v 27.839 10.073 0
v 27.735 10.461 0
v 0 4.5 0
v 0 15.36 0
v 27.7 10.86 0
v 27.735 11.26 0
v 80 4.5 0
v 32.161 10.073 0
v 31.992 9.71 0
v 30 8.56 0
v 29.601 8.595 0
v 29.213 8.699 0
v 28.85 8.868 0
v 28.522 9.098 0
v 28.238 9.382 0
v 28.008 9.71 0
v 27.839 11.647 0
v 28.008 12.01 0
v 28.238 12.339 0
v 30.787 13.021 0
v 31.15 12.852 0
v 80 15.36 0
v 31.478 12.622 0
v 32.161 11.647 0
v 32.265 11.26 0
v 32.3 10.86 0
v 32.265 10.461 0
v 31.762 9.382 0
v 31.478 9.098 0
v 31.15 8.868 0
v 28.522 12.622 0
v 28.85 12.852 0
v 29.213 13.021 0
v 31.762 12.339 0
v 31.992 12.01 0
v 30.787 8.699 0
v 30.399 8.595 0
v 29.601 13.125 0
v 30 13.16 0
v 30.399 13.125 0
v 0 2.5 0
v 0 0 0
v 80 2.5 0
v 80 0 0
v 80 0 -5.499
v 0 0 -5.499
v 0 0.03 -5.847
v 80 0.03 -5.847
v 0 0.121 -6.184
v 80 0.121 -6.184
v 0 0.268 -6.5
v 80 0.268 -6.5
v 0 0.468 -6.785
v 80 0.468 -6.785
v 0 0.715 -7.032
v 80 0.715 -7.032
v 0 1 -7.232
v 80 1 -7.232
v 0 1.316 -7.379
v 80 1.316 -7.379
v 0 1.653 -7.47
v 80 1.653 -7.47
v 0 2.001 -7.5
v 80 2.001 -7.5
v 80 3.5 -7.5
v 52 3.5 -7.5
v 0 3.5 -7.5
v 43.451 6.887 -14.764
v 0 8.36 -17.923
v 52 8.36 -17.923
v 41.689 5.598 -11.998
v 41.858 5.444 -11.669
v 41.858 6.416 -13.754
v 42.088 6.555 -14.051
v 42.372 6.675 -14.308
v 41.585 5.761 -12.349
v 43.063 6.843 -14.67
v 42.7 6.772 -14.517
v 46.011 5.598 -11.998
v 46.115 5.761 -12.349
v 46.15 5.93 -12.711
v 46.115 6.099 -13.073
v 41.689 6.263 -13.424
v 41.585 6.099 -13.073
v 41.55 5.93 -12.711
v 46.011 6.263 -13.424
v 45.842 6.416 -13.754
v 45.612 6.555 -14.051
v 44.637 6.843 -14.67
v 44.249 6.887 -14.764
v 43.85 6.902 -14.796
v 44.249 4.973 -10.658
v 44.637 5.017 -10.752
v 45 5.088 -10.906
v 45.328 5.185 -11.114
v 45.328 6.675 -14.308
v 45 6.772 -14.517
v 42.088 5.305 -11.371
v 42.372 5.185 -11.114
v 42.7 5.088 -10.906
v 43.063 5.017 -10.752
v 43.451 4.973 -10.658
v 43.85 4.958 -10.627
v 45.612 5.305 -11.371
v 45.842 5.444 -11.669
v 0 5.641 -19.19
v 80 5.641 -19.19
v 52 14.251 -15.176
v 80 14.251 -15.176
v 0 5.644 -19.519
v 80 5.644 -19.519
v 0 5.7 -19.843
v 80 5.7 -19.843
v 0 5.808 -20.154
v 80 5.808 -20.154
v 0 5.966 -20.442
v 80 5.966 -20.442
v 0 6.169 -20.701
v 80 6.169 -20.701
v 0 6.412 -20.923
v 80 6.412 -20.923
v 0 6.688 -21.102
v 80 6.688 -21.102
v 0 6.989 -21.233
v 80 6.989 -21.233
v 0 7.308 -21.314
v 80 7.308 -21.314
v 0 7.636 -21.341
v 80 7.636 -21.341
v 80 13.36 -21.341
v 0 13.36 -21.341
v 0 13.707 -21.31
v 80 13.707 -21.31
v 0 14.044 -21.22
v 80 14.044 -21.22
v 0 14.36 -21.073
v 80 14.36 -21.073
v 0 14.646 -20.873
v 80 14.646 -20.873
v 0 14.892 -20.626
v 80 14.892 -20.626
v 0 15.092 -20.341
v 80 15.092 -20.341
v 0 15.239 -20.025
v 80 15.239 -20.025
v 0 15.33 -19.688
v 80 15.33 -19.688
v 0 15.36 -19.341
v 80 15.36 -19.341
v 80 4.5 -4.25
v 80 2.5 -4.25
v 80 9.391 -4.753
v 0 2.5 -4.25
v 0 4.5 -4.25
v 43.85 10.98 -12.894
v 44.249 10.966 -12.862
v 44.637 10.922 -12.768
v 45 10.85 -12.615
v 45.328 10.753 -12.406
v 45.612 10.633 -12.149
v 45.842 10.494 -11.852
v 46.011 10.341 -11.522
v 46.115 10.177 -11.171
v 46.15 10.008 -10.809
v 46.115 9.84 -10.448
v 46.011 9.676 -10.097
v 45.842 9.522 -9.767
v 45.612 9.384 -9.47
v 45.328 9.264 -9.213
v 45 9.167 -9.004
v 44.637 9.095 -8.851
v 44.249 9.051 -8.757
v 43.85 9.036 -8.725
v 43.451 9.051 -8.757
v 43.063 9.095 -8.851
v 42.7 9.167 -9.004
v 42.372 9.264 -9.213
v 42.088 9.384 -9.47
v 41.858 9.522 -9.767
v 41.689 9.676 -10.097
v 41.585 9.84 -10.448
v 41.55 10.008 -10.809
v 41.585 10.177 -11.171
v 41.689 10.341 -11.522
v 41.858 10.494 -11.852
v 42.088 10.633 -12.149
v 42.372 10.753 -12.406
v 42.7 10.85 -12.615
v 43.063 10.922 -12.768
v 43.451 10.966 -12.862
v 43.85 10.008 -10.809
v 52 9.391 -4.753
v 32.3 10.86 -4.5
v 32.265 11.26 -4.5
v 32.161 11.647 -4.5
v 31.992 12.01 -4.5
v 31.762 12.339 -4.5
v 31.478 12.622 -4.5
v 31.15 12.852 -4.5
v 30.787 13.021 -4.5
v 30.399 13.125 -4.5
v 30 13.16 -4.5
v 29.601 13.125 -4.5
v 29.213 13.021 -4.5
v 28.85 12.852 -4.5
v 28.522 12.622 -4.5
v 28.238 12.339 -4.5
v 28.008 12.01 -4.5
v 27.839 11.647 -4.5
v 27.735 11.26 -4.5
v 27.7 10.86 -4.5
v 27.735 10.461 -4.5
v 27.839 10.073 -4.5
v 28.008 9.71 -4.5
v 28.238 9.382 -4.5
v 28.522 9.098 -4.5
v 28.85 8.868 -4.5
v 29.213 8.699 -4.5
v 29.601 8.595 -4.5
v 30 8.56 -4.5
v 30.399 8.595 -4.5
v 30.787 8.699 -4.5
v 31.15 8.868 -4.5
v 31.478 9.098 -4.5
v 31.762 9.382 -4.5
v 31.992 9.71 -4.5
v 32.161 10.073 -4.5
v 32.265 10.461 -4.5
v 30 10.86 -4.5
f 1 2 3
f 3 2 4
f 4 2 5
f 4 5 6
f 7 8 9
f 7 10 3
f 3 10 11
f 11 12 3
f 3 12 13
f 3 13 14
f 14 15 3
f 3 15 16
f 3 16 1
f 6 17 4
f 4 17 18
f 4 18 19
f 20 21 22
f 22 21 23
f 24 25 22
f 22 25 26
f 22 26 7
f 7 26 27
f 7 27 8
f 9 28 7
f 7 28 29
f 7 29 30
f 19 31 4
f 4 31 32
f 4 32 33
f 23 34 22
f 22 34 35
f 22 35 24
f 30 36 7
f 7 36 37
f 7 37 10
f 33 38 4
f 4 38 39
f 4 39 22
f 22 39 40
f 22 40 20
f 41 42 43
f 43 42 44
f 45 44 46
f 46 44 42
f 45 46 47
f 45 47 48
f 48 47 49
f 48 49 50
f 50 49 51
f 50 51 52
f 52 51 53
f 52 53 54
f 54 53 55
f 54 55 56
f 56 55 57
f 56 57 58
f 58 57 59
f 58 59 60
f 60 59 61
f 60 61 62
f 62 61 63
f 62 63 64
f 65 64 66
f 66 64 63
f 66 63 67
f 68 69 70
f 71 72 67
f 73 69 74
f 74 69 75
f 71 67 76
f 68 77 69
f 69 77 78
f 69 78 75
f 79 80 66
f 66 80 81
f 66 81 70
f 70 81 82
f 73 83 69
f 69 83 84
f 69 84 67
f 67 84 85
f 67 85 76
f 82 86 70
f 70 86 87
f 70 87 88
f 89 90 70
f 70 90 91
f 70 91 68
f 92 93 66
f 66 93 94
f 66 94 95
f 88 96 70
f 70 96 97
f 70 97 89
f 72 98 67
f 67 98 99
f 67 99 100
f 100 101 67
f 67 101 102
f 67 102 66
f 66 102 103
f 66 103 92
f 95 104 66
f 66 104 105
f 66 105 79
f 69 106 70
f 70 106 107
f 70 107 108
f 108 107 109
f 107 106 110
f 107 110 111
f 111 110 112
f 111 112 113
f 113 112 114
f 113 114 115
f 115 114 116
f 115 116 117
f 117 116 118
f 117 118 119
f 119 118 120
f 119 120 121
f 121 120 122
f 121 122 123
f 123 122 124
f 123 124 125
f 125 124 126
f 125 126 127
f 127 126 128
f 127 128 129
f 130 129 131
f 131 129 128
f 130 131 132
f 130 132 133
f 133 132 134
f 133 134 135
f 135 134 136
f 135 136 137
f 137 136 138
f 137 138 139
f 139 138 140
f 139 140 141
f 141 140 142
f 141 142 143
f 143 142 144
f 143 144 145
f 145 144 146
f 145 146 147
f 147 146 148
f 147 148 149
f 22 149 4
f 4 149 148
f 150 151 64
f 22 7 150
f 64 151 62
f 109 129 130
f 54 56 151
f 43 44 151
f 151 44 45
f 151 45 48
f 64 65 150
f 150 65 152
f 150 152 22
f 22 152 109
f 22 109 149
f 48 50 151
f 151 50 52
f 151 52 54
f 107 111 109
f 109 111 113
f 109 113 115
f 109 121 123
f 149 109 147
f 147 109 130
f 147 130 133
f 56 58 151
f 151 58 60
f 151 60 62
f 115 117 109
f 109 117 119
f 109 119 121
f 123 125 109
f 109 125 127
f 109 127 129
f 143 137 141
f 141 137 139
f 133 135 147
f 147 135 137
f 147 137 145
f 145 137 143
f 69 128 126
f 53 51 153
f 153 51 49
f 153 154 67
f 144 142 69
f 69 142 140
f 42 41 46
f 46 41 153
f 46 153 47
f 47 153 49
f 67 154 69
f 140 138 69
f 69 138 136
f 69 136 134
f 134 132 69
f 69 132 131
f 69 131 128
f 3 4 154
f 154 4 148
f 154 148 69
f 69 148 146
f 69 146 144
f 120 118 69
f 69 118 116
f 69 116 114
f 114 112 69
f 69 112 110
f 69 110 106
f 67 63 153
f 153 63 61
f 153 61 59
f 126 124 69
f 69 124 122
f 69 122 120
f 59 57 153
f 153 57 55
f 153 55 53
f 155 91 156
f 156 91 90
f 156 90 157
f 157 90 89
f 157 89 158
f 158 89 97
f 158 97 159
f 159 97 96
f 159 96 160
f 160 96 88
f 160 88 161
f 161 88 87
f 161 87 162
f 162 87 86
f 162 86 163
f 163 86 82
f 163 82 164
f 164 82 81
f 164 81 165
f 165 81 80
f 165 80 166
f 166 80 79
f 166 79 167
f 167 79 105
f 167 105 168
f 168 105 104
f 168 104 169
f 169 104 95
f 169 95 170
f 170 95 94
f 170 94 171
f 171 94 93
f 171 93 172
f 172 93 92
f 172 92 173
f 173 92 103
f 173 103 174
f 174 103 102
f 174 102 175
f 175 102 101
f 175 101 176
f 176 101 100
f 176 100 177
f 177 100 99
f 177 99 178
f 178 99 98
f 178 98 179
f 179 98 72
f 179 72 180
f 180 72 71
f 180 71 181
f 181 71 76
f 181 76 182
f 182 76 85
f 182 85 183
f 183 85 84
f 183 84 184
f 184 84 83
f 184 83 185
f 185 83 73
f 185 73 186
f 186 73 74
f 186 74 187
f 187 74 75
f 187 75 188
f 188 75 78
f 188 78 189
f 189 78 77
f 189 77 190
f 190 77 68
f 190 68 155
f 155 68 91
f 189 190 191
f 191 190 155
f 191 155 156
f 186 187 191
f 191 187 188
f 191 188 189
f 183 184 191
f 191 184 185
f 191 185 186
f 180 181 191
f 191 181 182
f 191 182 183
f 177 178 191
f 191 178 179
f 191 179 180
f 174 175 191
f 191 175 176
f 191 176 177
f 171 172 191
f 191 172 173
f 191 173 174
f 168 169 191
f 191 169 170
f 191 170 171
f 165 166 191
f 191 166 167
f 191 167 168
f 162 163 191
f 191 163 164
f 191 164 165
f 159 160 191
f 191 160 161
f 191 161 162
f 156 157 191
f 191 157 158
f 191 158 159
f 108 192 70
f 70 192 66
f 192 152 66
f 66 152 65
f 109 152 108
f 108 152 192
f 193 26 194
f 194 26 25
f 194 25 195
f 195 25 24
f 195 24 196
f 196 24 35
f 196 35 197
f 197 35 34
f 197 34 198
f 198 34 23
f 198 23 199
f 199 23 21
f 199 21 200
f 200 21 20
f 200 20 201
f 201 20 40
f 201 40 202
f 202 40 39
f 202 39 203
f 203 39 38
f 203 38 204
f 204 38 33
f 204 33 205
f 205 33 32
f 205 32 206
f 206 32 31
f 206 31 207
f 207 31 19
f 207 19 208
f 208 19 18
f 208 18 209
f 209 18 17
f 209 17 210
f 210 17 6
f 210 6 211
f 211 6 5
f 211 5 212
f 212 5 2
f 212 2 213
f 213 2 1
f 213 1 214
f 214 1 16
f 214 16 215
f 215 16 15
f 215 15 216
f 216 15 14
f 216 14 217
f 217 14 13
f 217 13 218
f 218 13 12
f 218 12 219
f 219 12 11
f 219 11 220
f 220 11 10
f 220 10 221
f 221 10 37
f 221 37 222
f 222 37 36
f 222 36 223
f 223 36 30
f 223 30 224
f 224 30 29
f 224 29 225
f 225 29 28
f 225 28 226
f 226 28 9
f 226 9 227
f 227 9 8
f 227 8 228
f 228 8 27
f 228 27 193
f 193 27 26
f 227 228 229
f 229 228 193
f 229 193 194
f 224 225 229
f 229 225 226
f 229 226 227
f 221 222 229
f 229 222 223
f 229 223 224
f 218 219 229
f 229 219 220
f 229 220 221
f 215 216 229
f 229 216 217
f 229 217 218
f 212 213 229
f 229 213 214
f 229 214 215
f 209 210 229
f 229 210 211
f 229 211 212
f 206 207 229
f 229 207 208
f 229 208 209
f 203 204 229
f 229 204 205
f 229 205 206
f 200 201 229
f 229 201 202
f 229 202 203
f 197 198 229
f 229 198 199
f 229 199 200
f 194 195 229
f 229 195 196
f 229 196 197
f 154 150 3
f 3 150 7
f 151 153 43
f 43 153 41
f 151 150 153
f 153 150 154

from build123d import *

# Parameters (mm, degrees)
PROFILEBOSS_EXTRUDE1_DEPTH           = 80
SKETCH2_R                            = 2.3
LEDSTRIPMOUNTHOLESCUT_EXTRUDE1_DEPTH = 4.5
SKETCH4_W                            = 28
SKETCH4_H                            = 11.5
POWERCONNECTORCUT_EXTRUDE4_DEPTH     = 6.5
SKETCH3_R                            = 2.3
MOUNTINGHOLESCUT_EXTRUDE3_DEPTH      = 4.5
SKETCH5_W                            = 80
SKETCH5_H                            = 2
XAXISCABLECUT_EXTRUDE1_DEPTH         = 4.25


with BuildPart() as part:
    # Sketch1 → ProfileBoss-Extrude1 (new body)
    with BuildSketch(Plane(origin=(0, 0, 0), x_dir=(0, 0, -1), z_dir=(1, 0, 0))):
        with BuildLine():
            Line((0, 0), (5.499461553, 0))
            ThreePointArc((5.499461553, 0), (6.914055855, 0.585944145), (7.5, 2.000538447))
            Line((7.5, 2.000538447), (7.5, 3.5))
            Line((7.5, 3.5), (17.922539551, 8.36011001))
            Line((17.922539551, 8.36011001), (19.190394336, 5.641186649))
            ThreePointArc((19.190394336, 5.641186649), (20.700753359, 6.16912635), (21.340729536, 7.635528477))
            Line((21.340729536, 7.635528477), (21.340729536, 13.36011001))
            ThreePointArc((21.340729536, 13.36011001), (20.754943098, 14.774323572), (19.340729536, 15.36011001))
            Line((19.340729536, 15.36011001), (0, 15.36011001))
            Line((0, 15.36011001), (0, 0))
        make_face()
    extrude(amount=PROFILEBOSS_EXTRUDE1_DEPTH)

    # Sketch2 → LedStripMountHolesCut-Extrude1 (cut)
    with BuildSketch(Plane(origin=(0, 0.002211655, 0.001031312), x_dir=(1, 0, 0), z_dir=(0, -0.906307787036651, -0.4226182617406973))):
        with Locations(Location((43.85, -14.026472319, 0), (0, 0, 270))):
            Circle(SKETCH2_R)
    extrude(amount=-LEDSTRIPMOUNTHOLESCUT_EXTRUDE1_DEPTH, mode=Mode.SUBTRACT)

    # Sketch4 → PowerConnectorCut-Extrude4 (cut)
    with BuildSketch(Plane(origin=(0, 0.002211655, 0.001031312), x_dir=(1, 0, 0), z_dir=(0, -0.906307787036651, -0.4226182617406973))):
        with Locations((66, -14.026472319)):
            Rectangle(SKETCH4_W, SKETCH4_H)
    extrude(amount=-POWERCONNECTORCUT_EXTRUDE4_DEPTH, mode=Mode.SUBTRACT)

    # Sketch3 → MountingHolesCut-Extrude3 (cut)
    with BuildSketch(Plane.XY):
        with Locations((30, 10.86011001)):
            Circle(SKETCH3_R)
    extrude(amount=-MOUNTINGHOLESCUT_EXTRUDE3_DEPTH, mode=Mode.SUBTRACT)

    # Sketch5 → XAxisCableCut-Extrude1 (cut)
    with BuildSketch(Plane.XY):
        with Locations((40, 3.5)):
            Rectangle(SKETCH5_W, SKETCH5_H)
    extrude(amount=-XAXISCABLECUT_EXTRUDE1_DEPTH, mode=Mode.SUBTRACT)


solid = part.part
